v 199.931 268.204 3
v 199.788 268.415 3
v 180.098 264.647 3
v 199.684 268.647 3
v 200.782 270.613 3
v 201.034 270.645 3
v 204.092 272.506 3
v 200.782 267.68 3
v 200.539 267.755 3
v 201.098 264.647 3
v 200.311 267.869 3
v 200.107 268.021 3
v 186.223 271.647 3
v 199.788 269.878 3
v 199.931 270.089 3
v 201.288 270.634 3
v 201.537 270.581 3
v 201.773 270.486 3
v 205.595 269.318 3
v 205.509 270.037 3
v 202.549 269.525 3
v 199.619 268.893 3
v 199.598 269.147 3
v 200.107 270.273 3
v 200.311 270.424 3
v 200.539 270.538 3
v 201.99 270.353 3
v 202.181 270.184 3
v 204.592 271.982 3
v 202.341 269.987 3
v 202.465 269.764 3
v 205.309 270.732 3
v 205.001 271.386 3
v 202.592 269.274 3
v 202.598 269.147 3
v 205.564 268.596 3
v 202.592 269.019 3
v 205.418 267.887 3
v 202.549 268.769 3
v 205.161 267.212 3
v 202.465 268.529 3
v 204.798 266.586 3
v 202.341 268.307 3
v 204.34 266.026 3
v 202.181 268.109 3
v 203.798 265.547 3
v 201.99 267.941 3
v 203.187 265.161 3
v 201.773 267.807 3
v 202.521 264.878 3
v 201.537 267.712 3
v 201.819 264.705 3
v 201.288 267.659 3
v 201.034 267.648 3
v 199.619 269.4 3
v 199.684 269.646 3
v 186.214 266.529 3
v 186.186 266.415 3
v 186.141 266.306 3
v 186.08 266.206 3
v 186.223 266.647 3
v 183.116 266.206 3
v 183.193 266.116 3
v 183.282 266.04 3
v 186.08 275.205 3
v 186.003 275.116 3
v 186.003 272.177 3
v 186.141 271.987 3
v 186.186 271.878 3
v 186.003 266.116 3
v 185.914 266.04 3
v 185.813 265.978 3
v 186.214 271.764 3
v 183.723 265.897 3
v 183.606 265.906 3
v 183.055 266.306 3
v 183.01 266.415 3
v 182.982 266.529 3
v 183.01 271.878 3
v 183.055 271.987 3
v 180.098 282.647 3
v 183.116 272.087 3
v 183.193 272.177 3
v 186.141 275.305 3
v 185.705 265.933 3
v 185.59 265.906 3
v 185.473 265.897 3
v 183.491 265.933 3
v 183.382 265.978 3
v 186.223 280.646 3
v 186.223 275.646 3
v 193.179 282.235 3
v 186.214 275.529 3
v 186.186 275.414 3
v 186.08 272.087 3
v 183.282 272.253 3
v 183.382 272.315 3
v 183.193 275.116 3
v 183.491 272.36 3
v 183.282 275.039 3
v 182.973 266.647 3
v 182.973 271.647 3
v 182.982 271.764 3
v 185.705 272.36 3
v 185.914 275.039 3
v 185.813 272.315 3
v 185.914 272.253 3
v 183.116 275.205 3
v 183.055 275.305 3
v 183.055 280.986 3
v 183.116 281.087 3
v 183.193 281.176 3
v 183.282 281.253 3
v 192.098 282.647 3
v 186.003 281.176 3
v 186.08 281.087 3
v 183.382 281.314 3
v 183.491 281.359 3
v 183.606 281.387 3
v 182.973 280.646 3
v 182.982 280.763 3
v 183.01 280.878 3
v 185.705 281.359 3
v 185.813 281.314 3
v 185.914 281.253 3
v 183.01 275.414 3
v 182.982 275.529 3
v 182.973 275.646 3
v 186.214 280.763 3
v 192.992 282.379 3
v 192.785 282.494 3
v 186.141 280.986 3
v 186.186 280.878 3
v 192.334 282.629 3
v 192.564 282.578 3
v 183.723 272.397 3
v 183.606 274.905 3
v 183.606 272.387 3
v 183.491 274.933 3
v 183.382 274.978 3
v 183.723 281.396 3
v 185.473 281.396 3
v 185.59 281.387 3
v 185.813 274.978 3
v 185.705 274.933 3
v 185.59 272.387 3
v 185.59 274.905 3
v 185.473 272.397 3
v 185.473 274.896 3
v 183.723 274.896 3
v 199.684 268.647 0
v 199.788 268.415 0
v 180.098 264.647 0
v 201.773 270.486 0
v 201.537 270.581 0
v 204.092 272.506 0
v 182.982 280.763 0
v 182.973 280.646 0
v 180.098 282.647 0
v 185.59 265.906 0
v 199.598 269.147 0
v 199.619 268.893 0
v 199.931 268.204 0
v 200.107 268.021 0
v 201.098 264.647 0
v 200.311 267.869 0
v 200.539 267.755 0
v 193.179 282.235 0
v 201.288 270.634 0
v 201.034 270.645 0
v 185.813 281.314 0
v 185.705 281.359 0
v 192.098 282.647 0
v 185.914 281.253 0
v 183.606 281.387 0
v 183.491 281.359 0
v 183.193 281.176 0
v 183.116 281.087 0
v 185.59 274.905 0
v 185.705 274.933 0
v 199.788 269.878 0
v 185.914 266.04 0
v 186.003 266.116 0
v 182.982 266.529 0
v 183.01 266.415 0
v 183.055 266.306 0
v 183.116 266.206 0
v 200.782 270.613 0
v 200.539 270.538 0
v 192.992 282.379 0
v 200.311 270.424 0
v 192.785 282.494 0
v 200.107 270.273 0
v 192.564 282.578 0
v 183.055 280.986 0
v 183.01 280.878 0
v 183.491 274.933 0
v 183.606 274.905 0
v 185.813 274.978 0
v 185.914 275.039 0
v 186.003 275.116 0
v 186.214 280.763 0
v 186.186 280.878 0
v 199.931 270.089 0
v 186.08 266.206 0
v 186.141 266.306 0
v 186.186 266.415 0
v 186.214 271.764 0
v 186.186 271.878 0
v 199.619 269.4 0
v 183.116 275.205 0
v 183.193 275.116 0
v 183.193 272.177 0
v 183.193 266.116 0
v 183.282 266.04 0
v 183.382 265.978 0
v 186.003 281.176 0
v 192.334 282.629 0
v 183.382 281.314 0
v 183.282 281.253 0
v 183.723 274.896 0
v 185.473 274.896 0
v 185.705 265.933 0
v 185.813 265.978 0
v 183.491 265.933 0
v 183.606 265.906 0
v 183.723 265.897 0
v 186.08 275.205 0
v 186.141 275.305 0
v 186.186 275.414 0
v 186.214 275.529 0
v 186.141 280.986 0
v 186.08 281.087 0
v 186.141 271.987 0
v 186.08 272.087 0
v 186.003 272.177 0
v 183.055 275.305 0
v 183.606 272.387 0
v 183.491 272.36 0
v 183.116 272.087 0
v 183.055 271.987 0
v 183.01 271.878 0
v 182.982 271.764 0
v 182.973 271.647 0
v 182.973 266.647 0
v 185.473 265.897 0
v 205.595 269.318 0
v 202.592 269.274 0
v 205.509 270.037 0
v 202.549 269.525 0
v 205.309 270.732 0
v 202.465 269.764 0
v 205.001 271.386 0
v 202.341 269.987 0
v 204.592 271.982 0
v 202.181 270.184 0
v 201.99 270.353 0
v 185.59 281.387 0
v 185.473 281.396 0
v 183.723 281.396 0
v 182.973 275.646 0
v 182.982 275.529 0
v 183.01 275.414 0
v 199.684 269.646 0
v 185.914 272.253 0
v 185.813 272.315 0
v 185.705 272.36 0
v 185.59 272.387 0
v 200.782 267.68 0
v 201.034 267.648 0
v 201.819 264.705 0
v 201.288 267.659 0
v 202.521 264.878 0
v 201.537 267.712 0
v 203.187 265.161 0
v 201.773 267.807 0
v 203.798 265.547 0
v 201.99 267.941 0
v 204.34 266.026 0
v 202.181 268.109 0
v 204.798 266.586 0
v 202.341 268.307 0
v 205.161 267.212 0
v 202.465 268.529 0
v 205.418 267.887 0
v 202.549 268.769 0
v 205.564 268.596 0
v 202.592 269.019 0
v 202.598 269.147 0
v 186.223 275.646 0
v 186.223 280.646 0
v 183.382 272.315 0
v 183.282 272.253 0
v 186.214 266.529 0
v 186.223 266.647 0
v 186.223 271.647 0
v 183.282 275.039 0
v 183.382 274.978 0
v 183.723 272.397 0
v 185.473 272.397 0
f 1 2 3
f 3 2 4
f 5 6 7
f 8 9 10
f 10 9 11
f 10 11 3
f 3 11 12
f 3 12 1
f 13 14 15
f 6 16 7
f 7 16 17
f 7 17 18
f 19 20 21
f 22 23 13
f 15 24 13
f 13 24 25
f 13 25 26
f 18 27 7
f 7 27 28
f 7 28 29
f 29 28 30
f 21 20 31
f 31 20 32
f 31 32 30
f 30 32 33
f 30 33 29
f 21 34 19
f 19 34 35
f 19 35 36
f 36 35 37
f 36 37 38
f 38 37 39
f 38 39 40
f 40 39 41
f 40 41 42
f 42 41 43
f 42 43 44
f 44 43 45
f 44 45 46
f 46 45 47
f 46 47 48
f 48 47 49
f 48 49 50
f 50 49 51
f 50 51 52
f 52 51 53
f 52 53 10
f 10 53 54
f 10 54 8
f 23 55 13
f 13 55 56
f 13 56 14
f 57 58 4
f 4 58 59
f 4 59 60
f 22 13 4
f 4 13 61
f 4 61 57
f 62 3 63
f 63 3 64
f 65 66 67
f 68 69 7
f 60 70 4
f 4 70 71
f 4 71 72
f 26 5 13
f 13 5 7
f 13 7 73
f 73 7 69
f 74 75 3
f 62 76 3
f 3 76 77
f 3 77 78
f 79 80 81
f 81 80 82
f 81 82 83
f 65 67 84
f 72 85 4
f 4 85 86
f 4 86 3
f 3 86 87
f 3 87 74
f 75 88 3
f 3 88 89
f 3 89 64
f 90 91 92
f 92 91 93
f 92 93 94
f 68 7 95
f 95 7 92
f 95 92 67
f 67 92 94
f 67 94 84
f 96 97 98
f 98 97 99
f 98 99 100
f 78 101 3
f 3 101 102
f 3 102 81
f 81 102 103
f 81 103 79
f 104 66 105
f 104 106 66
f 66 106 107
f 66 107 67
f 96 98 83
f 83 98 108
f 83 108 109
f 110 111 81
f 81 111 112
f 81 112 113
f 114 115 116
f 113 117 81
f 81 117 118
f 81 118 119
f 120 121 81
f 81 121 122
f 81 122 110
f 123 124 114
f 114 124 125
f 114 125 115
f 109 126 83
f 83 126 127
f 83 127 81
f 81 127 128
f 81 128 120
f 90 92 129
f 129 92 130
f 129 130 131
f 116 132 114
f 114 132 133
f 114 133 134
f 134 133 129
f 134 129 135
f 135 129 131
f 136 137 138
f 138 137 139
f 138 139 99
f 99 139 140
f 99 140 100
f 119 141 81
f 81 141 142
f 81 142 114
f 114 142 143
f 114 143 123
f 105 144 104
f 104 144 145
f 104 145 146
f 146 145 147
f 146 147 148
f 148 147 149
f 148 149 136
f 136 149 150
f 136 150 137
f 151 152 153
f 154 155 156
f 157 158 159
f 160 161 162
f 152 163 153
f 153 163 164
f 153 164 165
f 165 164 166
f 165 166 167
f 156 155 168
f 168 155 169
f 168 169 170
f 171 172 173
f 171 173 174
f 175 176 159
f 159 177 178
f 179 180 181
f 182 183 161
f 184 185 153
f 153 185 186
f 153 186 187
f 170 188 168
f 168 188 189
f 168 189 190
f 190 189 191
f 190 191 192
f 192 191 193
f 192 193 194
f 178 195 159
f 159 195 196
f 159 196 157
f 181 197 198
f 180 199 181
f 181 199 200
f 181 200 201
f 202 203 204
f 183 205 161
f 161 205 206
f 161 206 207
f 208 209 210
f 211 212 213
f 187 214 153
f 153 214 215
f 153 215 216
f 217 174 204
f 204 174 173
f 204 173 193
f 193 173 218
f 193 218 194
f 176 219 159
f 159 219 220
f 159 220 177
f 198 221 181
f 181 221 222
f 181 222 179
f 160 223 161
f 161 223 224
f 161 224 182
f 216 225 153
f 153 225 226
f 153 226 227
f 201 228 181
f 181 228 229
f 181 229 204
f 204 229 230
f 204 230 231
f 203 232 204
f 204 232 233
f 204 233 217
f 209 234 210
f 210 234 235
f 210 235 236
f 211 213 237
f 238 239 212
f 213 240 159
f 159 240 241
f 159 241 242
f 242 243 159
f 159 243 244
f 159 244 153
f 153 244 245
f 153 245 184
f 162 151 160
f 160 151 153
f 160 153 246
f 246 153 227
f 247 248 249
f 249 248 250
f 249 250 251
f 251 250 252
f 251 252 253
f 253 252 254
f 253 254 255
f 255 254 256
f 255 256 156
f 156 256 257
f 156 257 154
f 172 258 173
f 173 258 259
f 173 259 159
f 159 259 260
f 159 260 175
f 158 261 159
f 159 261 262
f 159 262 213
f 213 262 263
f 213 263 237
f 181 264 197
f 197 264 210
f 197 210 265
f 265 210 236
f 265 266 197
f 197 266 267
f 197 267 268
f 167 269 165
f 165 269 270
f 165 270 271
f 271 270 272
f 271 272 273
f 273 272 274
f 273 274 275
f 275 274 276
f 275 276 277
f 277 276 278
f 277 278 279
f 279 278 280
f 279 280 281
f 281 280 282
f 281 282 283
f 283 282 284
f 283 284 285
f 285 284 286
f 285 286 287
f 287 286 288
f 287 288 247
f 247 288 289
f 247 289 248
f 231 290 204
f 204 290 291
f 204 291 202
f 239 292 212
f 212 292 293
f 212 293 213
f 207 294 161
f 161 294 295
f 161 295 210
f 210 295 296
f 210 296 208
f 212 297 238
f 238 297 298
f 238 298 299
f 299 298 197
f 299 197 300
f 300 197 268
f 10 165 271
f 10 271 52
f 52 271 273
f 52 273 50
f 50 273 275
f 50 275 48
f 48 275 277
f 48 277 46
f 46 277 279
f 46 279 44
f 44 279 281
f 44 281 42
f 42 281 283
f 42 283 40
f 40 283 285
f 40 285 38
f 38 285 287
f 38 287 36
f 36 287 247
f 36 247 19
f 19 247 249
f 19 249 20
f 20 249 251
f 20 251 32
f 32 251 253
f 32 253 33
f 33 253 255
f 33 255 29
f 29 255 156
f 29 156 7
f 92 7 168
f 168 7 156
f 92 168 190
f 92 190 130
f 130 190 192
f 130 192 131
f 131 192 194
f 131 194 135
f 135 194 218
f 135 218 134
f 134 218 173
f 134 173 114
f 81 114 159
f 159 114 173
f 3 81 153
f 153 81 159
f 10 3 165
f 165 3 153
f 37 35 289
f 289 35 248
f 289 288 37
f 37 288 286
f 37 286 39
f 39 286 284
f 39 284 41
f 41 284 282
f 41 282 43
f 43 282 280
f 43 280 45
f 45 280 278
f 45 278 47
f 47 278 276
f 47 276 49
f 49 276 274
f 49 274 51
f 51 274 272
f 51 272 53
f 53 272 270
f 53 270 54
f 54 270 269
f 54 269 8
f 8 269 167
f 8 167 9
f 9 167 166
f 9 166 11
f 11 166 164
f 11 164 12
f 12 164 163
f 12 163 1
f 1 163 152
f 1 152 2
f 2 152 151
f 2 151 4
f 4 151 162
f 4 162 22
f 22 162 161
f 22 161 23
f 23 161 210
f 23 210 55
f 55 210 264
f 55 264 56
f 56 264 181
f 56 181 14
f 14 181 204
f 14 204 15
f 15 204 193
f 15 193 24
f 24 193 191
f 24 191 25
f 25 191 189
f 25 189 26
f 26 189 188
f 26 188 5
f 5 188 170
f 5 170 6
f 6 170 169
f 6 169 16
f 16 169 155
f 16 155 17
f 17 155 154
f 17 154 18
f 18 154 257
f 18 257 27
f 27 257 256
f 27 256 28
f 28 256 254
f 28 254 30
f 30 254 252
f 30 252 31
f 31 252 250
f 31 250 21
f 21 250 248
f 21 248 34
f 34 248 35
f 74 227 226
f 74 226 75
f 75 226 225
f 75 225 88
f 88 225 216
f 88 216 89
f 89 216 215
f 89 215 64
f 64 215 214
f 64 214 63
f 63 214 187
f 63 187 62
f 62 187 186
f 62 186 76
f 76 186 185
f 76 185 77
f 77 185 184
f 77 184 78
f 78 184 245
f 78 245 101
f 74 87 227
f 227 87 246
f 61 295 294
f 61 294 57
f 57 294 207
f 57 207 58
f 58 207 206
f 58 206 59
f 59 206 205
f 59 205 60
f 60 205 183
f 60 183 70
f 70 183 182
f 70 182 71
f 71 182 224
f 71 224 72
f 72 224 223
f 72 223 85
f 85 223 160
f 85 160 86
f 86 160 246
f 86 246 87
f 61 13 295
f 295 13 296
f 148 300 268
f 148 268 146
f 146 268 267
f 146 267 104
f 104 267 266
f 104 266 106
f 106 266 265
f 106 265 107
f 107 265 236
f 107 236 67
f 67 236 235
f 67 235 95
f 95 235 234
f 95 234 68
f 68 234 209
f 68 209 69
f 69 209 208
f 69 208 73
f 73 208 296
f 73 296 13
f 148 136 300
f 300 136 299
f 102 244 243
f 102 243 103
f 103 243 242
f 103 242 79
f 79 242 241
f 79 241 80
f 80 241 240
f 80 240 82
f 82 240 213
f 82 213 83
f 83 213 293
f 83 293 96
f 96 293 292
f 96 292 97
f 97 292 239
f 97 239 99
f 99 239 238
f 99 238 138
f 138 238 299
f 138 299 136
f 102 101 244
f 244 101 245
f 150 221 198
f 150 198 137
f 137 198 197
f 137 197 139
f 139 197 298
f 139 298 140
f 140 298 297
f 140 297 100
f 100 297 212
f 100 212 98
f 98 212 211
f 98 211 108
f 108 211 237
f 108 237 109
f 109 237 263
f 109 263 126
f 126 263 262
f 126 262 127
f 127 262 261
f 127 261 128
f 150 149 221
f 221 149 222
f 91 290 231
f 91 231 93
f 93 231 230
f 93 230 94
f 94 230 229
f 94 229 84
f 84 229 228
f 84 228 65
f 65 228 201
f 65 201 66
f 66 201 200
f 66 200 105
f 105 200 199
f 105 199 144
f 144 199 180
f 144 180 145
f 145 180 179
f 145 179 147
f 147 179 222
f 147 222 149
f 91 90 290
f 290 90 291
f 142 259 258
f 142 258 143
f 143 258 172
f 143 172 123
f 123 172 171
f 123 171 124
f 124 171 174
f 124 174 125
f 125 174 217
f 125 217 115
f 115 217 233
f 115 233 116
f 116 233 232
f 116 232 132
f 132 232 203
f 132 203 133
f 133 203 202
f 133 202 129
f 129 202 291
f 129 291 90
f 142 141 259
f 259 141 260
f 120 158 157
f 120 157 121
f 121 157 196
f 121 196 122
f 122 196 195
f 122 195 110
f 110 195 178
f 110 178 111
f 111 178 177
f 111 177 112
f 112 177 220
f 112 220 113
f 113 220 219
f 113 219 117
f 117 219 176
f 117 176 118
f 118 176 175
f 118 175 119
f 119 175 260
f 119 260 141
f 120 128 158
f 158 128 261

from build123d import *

# Parameters (mm, degrees)
MODEL_R                 = 1.5
SALIENTE_EXTRUIR1_DEPTH = 3


with BuildPart() as part:
    # Model → Saliente-Extruir1 (new body)
    with BuildSketch(Plane.XY):
        with BuildLine():
            Line((201.097853309, 264.646547335), (180.097853309, 264.646547335))
            Line((180.097853309, 264.646547335), (180.097853309, 282.646547335))
            Line((180.097853309, 282.646547335), (192.097853309, 282.646547335))
            ThreePointArc((192.097853309, 282.646547335), (192.676448554, 282.540050724), (193.179205728, 282.234519695))
            Line((193.179205728, 282.234519695), (204.092367701, 272.505547716))
            ThreePointArc((204.092367701, 272.505547716), (205.302939617, 267.544283579), (201.097853309, 264.646547335))
        make_face()
        with Locations((201.097853309, 269.146547335)):
            Circle(MODEL_R, mode=Mode.SUBTRACT)
        with BuildLine():
            Line((183.722853309, 265.896547335), (185.472853309, 265.896547335))
            ThreePointArc((185.472853309, 265.896547335), (186.003183395, 266.116217249), (186.222853309, 266.646547335))
            Line((186.222853309, 266.646547335), (186.222853309, 271.646547335))
            ThreePointArc((186.222853309, 271.646547335), (186.003183395, 272.176877421), (185.472853309, 272.396547335))
            Line((185.472853309, 272.396547335), (183.722853309, 272.396547335))
            ThreePointArc((183.722853309, 272.396547335), (183.192523223, 272.176877421), (182.972853309, 271.646547335))
            Line((182.972853309, 271.646547335), (182.972853309, 266.646547335))
            ThreePointArc((182.972853309, 266.646547335), (183.192523223, 266.116217249), (183.722853309, 265.896547335))
        make_face(mode=Mode.SUBTRACT)
        with BuildLine():
            Line((183.722853309, 274.895968764), (185.472853309, 274.895968764))
            ThreePointArc((185.472853309, 274.895968764), (186.003183395, 275.115638678), (186.222853309, 275.645968764))
            Line((186.222853309, 275.645968764), (186.222853309, 280.645968764))
            ThreePointArc((186.222853309, 280.645968764), (186.003183395, 281.17629885), (185.472853309, 281.395968764))
            Line((185.472853309, 281.395968764), (183.722853309, 281.395968764))
            ThreePointArc((183.722853309, 281.395968764), (183.192523223, 281.17629885), (182.972853309, 280.645968764))
            Line((182.972853309, 280.645968764), (182.972853309, 275.645968764))
            ThreePointArc((182.972853309, 275.645968764), (183.192523223, 275.115638678), (183.722853309, 274.895968764))
        make_face(mode=Mode.SUBTRACT)
    extrude(amount=SALIENTE_EXTRUIR1_DEPTH)


solid = part.part
